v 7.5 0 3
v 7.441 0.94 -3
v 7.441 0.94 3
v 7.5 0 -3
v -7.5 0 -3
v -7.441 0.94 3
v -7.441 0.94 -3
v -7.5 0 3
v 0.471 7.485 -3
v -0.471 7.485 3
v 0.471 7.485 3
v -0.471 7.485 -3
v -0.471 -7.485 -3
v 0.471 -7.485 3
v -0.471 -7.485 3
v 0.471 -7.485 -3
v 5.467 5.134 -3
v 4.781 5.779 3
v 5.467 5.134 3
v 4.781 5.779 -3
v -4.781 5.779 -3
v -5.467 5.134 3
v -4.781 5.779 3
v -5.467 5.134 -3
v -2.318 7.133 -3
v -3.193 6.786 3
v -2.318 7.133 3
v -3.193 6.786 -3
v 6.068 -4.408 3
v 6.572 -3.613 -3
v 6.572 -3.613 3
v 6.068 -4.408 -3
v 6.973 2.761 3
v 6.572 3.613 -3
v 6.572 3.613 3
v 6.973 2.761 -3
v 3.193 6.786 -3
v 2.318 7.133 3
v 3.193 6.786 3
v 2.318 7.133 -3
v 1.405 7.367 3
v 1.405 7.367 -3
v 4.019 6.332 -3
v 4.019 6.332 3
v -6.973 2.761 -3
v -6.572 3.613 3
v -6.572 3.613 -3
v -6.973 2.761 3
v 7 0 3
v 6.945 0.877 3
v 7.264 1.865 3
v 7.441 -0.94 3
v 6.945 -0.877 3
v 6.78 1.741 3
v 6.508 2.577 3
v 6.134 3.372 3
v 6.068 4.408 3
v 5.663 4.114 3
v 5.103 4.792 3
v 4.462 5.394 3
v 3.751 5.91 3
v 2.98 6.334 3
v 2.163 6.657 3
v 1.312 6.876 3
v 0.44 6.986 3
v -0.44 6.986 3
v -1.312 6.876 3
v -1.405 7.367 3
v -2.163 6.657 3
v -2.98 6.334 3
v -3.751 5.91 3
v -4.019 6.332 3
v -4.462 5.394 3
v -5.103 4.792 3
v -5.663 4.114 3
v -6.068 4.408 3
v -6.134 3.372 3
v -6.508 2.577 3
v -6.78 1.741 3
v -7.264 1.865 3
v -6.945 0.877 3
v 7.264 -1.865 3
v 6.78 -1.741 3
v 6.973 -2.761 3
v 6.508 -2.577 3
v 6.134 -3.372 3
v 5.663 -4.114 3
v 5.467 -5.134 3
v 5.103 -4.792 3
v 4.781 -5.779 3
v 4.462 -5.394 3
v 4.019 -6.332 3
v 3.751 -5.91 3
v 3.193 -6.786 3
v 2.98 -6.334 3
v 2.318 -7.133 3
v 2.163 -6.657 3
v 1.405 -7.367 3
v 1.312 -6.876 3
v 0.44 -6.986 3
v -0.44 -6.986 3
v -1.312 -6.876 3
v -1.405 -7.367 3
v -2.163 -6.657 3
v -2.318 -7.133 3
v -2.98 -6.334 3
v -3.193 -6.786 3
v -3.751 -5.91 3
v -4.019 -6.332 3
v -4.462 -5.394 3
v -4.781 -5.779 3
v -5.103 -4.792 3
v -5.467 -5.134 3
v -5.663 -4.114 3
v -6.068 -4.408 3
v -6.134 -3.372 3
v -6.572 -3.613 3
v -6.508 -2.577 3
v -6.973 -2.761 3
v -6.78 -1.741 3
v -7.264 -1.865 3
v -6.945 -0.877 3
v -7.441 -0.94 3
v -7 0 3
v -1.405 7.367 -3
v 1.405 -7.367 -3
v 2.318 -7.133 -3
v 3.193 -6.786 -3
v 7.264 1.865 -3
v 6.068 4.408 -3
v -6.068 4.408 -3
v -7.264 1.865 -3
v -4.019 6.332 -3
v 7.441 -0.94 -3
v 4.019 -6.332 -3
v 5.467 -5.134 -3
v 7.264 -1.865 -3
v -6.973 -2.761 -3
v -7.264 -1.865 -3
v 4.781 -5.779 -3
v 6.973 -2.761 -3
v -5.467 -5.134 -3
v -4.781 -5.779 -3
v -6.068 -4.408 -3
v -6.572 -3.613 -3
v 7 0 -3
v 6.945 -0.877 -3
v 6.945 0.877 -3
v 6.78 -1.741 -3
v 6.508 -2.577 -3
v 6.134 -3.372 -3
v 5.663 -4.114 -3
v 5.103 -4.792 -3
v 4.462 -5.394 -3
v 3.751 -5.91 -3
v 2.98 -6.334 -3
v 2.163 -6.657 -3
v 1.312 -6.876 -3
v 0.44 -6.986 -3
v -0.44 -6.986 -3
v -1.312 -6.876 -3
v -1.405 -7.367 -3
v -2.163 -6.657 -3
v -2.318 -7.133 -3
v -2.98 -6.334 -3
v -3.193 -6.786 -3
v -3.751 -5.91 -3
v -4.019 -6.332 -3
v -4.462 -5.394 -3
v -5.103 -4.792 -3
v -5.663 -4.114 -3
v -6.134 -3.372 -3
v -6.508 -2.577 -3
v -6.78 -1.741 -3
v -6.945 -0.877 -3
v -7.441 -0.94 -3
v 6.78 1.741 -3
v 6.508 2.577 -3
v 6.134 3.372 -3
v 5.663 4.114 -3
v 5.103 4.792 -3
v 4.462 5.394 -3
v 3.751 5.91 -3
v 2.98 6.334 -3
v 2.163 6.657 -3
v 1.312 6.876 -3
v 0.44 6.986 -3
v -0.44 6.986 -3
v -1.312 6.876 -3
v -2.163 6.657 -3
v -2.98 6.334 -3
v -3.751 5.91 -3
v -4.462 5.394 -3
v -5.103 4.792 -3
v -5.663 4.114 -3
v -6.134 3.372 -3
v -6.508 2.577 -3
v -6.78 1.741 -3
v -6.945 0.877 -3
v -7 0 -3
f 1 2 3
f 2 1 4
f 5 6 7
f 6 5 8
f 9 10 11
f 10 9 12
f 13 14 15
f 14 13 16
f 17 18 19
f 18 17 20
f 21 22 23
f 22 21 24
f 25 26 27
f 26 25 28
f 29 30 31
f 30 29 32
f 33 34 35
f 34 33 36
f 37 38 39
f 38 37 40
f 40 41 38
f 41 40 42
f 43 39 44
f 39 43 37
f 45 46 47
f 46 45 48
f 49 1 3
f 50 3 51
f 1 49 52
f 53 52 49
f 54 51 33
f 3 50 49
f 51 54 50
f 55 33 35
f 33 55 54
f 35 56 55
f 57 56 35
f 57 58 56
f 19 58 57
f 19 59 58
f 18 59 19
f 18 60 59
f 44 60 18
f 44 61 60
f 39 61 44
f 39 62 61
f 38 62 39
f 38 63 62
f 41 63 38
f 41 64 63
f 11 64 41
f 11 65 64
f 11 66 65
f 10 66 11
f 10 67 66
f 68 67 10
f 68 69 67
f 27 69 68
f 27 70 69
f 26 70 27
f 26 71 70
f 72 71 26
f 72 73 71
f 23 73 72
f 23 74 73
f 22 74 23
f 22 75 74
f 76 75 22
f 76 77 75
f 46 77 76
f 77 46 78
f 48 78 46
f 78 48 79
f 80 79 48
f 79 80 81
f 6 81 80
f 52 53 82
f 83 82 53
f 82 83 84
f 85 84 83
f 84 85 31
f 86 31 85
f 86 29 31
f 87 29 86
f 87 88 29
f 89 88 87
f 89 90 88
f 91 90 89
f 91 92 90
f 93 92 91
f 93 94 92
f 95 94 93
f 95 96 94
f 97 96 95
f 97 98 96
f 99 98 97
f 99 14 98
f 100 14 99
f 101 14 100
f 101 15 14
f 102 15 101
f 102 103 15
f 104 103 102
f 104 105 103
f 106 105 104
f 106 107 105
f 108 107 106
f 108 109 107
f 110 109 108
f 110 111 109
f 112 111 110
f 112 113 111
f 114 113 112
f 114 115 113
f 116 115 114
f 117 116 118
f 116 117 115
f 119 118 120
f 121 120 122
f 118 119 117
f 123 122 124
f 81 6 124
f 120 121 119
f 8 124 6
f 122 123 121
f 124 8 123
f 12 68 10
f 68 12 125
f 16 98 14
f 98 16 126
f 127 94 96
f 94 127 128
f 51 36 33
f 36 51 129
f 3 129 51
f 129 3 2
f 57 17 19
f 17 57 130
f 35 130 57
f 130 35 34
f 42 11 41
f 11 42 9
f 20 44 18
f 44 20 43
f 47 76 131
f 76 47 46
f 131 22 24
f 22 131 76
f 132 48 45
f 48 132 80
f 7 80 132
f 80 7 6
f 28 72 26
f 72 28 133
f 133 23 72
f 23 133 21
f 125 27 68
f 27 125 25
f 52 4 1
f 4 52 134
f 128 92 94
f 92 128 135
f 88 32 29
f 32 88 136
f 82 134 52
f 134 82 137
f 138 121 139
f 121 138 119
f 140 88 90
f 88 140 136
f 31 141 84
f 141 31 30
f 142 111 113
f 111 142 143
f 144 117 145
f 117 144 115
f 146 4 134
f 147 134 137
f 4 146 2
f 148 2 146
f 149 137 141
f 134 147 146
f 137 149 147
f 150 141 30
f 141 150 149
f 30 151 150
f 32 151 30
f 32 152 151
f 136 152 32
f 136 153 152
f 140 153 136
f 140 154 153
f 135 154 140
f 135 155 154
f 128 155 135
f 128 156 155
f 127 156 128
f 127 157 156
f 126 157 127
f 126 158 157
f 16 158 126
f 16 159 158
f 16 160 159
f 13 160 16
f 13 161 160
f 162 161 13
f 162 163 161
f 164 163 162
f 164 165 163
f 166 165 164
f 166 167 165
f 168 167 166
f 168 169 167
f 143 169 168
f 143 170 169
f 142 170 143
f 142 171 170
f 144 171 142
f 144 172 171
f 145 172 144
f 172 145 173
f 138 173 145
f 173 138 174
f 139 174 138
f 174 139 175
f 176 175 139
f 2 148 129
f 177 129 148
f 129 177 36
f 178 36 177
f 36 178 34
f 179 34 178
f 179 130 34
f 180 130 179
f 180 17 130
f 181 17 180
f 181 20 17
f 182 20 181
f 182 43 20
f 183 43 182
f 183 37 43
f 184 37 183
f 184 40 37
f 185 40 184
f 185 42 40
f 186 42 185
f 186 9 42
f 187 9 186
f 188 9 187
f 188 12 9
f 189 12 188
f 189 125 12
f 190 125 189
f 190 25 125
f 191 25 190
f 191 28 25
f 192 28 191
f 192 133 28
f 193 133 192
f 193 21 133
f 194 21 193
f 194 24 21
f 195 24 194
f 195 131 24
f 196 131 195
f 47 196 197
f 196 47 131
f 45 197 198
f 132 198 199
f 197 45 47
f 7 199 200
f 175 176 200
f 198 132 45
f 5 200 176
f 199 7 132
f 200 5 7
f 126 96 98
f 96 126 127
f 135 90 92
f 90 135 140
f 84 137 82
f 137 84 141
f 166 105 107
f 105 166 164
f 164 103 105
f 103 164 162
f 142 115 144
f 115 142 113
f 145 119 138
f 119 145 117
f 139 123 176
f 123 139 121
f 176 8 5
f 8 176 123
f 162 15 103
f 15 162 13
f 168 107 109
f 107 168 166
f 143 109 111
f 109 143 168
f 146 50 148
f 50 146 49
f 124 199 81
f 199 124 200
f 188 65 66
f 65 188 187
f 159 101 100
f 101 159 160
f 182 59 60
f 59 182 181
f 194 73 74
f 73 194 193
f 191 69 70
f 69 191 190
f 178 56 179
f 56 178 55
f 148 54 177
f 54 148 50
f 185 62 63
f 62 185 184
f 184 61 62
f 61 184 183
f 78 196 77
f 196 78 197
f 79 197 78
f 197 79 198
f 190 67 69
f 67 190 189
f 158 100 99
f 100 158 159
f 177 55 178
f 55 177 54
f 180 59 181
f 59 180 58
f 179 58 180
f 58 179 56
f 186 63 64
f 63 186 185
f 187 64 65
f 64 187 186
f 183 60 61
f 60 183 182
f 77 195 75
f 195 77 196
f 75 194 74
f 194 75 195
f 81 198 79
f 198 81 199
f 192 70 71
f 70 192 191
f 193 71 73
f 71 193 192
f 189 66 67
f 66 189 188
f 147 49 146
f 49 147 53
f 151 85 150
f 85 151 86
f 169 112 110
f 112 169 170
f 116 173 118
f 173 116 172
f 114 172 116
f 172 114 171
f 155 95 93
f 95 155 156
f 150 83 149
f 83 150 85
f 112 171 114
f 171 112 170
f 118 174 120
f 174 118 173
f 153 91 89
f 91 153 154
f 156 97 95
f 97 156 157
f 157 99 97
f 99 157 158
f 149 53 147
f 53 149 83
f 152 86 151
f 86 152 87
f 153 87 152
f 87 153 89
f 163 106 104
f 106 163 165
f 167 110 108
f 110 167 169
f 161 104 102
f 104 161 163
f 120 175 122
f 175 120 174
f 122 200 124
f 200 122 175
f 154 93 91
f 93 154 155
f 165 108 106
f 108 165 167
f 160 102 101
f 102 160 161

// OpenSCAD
$fn = 50;


difference() {
	union() {
		translate(v = [0, 0, -3.0000000000]) {
			cylinder(h = 6, r = 7.5000000000);
		}
	}
	union() {
		translate(v = [0, 0, -100.0000000000]) {
			cylinder(h = 200, r = 7);
		}
	}
}
